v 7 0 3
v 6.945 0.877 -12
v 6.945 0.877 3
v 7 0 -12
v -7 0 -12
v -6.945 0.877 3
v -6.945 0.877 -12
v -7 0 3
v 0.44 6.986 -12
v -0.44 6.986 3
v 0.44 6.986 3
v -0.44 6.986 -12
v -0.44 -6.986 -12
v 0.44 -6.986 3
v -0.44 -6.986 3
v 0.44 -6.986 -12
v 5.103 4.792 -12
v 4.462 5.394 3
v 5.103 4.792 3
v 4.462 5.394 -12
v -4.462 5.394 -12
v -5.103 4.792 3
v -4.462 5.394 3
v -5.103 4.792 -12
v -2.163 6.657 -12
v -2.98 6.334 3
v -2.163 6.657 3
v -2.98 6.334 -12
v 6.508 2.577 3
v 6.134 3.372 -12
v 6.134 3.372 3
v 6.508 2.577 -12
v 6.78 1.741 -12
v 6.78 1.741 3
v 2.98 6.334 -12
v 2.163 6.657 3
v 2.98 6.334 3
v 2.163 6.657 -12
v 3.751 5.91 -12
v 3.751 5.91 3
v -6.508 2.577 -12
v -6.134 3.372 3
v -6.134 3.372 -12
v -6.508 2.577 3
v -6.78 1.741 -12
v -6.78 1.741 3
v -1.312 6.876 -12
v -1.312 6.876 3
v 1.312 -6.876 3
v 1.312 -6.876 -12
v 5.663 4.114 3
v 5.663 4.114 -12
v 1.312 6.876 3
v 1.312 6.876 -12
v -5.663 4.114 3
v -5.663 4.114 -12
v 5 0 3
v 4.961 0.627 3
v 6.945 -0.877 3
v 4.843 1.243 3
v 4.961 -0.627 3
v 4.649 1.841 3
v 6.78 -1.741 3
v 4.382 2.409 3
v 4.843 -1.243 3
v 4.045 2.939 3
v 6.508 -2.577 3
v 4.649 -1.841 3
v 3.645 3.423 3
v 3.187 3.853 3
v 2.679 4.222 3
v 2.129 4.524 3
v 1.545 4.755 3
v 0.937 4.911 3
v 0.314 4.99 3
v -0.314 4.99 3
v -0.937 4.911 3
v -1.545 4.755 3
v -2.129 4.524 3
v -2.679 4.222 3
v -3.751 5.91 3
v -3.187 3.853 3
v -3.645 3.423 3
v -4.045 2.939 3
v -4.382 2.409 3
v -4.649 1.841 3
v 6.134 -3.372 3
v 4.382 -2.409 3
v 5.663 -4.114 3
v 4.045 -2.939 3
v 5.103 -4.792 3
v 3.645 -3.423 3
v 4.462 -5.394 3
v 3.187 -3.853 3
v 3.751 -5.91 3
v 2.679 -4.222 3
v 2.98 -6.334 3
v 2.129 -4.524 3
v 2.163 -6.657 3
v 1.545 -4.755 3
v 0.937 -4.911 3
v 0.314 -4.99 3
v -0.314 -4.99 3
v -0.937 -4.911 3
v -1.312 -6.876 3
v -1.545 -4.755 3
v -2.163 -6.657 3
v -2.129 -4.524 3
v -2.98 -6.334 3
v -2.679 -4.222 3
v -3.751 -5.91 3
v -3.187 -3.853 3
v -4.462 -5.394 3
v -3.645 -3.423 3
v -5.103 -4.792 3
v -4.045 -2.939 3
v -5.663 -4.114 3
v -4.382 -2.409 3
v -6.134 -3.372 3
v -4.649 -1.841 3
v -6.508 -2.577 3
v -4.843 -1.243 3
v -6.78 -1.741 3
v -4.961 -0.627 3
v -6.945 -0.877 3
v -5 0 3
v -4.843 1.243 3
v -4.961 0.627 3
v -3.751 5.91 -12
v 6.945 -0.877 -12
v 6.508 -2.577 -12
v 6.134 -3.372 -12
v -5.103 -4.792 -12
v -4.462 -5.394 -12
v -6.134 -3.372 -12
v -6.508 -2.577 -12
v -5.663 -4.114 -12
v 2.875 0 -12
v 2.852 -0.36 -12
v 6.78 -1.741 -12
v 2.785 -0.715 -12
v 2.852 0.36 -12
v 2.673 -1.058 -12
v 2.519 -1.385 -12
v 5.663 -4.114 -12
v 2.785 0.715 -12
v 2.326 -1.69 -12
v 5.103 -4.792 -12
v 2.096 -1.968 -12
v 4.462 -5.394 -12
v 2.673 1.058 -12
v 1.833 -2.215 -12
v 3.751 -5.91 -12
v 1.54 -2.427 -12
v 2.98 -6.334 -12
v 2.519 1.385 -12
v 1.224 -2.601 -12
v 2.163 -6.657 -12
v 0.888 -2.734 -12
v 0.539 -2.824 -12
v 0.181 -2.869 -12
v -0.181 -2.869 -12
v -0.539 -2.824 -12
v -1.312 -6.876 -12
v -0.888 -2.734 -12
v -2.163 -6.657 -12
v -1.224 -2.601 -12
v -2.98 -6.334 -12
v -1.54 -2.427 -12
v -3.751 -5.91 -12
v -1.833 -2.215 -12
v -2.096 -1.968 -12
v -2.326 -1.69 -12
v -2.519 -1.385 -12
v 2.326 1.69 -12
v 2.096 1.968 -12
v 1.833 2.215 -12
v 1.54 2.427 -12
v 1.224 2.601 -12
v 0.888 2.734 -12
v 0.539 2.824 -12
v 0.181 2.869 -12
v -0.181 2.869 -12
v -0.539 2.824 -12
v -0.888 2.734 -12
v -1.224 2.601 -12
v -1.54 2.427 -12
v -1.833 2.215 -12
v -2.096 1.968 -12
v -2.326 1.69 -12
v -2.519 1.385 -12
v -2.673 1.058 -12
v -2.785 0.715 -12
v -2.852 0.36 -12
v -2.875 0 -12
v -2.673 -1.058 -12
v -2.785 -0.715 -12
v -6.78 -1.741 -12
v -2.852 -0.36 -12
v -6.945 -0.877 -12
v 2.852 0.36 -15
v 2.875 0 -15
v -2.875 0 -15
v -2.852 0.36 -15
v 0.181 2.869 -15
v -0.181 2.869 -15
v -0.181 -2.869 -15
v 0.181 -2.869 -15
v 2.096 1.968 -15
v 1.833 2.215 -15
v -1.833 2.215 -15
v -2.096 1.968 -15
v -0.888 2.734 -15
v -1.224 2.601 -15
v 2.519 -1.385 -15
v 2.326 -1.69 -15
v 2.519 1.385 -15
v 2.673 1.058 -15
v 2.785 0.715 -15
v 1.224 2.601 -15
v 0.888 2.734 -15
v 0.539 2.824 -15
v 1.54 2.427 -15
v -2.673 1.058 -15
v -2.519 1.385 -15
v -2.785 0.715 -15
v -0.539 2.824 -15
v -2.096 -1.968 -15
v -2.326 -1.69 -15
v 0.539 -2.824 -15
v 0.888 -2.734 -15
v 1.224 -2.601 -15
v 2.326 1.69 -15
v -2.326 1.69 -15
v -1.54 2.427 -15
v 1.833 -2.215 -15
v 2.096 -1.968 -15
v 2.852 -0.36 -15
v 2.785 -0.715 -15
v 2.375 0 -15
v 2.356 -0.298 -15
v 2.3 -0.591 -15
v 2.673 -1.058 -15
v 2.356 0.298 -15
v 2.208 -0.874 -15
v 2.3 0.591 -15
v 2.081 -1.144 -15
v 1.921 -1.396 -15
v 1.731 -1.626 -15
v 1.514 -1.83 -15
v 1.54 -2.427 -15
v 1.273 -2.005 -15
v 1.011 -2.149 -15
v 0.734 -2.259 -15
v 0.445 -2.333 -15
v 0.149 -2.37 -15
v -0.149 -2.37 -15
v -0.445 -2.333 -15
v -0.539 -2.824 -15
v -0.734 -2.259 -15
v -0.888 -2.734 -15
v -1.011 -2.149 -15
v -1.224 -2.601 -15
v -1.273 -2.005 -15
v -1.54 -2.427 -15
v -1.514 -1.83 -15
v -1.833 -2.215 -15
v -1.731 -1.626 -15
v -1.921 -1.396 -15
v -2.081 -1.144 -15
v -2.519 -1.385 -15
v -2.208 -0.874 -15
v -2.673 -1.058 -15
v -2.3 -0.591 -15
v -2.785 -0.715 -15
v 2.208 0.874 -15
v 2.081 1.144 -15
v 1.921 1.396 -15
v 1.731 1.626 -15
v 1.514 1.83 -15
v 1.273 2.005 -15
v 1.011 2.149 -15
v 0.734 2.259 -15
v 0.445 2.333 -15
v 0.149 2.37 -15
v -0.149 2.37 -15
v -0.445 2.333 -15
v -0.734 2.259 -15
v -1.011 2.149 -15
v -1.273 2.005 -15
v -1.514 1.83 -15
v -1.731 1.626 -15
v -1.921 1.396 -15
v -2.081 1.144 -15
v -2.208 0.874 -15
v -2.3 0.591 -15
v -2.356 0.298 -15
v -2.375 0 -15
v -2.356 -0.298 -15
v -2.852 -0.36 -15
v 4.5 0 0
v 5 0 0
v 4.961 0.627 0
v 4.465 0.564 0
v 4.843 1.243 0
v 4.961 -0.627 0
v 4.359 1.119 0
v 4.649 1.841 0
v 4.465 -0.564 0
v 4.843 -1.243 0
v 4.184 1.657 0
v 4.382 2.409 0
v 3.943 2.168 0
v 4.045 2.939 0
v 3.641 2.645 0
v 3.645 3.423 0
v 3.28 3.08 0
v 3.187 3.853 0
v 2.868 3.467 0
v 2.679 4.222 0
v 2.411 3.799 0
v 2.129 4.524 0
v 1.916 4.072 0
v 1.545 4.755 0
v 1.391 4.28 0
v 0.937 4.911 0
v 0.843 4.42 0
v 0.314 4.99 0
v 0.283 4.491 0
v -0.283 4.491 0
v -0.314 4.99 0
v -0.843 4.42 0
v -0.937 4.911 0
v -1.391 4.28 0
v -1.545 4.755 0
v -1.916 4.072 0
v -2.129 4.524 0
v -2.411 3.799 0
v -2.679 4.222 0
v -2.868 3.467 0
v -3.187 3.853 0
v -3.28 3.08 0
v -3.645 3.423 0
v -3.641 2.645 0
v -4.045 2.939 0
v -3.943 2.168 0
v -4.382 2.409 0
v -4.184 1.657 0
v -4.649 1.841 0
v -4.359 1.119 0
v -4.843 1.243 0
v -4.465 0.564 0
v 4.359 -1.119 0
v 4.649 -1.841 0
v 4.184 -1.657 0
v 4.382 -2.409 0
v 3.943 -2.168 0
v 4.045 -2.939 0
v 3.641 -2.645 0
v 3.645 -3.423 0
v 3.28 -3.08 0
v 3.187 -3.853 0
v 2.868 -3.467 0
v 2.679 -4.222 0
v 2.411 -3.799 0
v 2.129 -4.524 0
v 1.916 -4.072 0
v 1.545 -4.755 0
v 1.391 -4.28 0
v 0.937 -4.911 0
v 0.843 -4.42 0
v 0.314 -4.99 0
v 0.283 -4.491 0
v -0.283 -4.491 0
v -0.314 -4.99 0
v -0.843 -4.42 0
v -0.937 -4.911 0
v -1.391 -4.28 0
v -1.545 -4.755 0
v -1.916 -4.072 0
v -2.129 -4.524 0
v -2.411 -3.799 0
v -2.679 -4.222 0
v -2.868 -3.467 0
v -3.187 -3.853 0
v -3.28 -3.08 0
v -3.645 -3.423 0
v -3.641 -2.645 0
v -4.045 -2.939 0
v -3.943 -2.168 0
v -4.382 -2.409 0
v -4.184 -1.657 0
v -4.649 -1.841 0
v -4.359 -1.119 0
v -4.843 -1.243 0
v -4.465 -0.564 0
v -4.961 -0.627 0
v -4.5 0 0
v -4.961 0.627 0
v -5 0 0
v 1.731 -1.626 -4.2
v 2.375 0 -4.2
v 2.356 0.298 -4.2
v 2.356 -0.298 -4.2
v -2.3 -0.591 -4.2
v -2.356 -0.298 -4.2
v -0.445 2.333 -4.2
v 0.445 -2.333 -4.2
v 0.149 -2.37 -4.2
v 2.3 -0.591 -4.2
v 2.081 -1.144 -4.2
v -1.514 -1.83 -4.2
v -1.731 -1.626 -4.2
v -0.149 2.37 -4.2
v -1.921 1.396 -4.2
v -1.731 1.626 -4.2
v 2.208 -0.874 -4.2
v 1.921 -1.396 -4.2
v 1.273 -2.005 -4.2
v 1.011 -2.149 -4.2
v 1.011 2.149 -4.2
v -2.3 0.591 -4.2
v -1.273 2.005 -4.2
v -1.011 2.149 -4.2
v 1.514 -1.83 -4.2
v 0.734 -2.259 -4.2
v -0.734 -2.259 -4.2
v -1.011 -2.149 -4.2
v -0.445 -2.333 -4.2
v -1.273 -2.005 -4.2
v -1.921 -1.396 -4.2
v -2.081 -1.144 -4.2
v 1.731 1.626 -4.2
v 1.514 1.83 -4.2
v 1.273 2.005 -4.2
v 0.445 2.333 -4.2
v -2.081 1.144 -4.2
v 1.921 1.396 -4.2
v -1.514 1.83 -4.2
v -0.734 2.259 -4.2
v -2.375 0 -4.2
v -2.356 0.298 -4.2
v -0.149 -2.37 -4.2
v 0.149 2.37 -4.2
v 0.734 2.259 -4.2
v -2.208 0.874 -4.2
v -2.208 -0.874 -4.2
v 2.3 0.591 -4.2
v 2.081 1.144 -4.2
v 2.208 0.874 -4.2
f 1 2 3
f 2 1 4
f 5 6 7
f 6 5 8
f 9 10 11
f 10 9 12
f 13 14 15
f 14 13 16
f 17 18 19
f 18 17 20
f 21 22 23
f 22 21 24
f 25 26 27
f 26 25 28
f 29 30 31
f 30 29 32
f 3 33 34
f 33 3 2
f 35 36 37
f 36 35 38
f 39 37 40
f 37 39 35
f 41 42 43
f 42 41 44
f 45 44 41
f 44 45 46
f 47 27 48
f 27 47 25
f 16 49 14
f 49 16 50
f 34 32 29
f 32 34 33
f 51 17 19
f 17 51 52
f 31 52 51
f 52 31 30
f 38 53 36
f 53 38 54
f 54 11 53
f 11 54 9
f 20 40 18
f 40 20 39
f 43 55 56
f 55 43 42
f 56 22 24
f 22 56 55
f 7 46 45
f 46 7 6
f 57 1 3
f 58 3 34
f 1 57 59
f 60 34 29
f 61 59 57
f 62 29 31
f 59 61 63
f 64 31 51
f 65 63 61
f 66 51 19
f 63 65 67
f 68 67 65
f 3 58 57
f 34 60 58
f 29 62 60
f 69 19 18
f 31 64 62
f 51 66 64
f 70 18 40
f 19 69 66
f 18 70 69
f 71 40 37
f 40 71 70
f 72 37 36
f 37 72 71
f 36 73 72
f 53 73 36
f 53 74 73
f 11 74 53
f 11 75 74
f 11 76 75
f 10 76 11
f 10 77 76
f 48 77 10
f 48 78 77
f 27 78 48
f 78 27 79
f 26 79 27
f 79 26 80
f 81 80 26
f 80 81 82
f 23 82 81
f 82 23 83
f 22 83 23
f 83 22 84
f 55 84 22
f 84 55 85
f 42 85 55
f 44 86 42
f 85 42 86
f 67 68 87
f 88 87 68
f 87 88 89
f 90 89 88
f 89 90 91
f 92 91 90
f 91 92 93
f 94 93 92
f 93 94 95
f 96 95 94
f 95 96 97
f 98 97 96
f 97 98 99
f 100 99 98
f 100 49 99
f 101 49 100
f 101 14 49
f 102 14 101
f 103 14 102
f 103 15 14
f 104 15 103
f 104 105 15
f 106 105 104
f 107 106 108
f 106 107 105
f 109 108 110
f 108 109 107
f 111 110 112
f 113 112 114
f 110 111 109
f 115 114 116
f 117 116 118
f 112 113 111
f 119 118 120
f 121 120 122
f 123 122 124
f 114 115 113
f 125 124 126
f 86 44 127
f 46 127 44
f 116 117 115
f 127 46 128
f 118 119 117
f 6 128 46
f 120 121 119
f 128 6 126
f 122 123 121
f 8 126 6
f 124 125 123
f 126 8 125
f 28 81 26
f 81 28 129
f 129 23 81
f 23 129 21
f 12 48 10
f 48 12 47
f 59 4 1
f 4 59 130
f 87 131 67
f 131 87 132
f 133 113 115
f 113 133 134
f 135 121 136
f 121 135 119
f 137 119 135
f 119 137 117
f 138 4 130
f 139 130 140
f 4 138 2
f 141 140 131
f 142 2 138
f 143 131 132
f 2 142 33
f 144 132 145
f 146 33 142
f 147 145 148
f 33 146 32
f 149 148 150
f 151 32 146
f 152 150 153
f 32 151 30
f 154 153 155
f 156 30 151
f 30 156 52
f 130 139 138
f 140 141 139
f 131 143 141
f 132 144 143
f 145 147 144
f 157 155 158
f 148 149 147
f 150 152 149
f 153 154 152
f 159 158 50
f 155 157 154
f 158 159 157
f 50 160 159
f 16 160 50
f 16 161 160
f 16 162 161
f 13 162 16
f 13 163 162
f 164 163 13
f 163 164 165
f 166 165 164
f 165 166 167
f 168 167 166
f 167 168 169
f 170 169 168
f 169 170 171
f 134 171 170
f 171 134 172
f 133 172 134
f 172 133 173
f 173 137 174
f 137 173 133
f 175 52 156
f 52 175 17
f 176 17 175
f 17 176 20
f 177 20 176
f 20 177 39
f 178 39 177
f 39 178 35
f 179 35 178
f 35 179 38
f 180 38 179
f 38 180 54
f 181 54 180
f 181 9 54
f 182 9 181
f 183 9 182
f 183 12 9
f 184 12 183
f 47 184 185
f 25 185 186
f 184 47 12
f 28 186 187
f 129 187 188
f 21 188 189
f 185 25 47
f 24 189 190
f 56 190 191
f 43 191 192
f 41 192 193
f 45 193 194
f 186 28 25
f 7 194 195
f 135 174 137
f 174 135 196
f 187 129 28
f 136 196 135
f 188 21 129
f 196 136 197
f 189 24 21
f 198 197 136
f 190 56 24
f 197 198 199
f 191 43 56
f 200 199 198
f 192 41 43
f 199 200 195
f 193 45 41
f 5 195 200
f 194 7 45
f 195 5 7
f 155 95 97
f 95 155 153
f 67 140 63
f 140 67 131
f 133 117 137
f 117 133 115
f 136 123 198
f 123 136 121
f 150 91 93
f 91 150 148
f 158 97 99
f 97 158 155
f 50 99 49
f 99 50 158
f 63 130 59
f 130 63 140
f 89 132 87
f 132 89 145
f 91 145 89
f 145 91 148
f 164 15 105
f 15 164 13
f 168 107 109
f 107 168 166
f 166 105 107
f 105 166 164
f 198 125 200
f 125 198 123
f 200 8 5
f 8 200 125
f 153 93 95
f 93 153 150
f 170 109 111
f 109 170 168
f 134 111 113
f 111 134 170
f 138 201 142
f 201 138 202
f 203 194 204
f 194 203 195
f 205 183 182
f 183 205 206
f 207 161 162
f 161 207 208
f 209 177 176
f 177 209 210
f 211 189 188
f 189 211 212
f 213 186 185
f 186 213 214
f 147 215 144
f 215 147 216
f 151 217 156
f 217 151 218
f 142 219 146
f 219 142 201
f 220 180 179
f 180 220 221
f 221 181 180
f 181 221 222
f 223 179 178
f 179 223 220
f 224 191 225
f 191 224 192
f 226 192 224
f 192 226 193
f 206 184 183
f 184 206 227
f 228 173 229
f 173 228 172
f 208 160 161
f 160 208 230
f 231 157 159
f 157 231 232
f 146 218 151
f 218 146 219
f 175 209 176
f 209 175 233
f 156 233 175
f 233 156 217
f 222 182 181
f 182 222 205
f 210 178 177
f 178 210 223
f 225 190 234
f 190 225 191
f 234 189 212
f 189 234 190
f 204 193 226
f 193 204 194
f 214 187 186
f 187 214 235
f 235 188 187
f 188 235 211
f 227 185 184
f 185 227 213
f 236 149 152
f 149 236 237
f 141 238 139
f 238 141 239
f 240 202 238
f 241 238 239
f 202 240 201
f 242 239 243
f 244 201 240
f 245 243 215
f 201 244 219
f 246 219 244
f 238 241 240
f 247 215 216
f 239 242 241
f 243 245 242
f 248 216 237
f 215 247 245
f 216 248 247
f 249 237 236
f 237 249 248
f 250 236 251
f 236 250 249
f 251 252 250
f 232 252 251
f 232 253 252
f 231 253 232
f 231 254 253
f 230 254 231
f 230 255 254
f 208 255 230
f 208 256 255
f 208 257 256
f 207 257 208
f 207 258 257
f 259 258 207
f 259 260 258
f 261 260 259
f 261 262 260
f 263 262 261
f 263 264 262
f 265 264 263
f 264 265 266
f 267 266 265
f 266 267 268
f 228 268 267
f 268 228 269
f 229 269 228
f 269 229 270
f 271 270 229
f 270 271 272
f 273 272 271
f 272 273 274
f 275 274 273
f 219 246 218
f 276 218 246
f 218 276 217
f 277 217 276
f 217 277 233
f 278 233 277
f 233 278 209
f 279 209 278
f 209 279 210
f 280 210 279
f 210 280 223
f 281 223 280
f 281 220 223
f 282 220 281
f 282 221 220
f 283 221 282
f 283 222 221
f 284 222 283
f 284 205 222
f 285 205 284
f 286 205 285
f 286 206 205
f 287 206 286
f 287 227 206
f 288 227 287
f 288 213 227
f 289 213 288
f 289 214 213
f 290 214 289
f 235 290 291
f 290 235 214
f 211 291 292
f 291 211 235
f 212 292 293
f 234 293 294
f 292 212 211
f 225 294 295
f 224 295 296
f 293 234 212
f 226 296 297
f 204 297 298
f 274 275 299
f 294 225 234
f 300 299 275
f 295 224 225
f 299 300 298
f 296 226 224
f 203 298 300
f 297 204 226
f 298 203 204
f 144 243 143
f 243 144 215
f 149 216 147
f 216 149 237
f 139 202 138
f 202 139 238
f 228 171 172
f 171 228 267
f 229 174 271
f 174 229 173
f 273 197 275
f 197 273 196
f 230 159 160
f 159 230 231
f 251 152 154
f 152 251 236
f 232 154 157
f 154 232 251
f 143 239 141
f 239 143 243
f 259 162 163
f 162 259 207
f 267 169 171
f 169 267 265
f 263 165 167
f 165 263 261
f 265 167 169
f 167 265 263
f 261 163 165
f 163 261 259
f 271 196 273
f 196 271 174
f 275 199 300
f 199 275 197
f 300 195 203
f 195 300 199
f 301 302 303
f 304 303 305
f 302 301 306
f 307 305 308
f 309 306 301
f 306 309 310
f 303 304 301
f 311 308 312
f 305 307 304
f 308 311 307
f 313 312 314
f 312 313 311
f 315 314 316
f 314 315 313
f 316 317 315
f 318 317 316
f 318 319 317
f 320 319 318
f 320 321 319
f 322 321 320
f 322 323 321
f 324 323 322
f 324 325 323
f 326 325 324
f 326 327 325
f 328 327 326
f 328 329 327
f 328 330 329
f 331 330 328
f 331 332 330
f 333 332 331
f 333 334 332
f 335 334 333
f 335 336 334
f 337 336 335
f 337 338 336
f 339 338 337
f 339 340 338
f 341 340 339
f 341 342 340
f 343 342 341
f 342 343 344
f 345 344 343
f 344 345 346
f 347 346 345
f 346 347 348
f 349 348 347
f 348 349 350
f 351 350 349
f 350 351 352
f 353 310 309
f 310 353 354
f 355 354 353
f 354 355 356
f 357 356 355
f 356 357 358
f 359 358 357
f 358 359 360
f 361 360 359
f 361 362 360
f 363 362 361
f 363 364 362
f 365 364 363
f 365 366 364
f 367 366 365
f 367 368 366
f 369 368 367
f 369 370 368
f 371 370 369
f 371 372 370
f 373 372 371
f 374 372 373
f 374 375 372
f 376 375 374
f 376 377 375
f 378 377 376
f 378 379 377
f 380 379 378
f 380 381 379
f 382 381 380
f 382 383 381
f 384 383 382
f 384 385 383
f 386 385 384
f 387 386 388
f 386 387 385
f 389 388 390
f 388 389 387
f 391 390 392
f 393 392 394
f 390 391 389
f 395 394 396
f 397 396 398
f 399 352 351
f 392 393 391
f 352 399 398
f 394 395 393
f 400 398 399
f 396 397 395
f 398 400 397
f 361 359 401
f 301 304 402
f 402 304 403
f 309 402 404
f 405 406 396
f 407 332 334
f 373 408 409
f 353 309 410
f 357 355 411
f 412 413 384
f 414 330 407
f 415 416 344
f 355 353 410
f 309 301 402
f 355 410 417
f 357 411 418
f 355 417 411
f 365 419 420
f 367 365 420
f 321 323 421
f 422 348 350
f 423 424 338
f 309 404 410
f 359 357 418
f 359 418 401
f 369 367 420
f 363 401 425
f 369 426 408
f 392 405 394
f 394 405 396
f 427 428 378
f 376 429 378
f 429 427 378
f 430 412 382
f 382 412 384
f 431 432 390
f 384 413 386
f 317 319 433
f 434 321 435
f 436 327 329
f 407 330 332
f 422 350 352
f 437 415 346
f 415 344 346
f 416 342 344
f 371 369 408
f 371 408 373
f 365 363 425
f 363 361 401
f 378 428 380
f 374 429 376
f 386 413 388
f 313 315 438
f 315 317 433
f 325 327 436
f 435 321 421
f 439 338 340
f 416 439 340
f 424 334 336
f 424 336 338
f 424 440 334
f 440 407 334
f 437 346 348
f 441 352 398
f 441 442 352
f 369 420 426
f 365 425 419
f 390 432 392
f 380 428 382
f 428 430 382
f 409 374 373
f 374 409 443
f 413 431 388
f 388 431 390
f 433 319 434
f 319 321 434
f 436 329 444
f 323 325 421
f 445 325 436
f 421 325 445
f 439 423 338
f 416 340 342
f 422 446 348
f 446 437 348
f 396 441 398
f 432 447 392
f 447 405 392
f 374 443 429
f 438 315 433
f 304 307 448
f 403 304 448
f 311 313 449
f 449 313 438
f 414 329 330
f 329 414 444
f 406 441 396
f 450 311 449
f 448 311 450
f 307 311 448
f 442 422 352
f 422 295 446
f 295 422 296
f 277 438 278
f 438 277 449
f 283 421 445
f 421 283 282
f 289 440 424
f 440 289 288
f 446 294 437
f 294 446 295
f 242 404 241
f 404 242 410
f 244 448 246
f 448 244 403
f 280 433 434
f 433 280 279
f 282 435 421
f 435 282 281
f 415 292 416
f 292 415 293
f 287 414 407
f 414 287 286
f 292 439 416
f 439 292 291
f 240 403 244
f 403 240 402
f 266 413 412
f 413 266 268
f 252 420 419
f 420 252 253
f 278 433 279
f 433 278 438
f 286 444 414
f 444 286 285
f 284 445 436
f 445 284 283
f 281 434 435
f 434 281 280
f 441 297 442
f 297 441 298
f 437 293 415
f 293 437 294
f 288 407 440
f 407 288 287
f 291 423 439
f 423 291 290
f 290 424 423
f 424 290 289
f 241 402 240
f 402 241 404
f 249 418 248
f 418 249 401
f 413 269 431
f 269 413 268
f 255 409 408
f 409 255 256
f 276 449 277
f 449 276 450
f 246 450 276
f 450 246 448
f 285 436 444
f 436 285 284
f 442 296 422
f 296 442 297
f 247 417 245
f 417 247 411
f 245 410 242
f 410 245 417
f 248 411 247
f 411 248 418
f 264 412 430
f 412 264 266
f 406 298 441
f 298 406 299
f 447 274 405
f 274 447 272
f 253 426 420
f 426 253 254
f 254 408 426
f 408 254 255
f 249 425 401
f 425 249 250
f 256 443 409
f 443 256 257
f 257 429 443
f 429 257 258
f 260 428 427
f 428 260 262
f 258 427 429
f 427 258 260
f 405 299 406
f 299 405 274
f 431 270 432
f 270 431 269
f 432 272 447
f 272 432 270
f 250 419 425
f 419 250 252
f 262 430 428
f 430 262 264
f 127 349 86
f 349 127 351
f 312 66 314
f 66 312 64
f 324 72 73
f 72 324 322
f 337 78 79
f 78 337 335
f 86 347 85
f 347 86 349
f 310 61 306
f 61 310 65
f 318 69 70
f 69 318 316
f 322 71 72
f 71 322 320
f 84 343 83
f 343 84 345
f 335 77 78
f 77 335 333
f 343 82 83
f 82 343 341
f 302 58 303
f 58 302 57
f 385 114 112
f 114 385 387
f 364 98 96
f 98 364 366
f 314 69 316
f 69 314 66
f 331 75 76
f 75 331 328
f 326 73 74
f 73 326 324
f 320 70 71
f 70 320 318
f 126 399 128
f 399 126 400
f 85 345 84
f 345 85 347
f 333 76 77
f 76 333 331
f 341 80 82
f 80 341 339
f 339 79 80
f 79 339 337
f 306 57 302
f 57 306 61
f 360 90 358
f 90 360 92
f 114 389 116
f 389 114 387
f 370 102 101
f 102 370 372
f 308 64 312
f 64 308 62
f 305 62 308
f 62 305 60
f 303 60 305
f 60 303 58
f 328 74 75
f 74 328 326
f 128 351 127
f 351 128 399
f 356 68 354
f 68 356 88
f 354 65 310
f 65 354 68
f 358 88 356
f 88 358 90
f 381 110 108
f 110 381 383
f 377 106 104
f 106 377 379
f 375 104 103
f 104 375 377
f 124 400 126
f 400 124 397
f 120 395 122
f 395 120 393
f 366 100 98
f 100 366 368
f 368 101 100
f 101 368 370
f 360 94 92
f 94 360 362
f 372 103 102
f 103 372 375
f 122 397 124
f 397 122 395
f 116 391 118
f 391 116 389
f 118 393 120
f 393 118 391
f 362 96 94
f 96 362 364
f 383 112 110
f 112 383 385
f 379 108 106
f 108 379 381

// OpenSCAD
$fn = 50;

difference() {
	union() {
		translate(v = [0, 0, -12.0]) {
			cylinder(h = 15, r = 7.0);
		}
		#translate(v = [0, 0, -15.0]) {
			cylinder(h = 15, r = 2.875);
		}
	}
	union() {
		translate(v = [0, 0, 0]) {
			rotate(a = [0, 0, 0]) {
				difference() {
					union() {
						translate(v = [0, 0, -15.0]) {
							cylinder(h = 15, r = 2.25);
						}
						translate(v = [0, 0, -4.2]) {
							cylinder(h = 4.2, r1 = 2.375, r2 = 4.5);
						}
						translate(v = [0, 0, -15.0]) {
							cylinder(h = 15, r = 2.375);
						}
						translate(v = [0, 0, -15.0]) {
							cylinder(h = 15, r = 2.25);
						}
					}
					union();
				}
			}
		}
		#cylinder(h = 3, r = 5.0);
	}
}
